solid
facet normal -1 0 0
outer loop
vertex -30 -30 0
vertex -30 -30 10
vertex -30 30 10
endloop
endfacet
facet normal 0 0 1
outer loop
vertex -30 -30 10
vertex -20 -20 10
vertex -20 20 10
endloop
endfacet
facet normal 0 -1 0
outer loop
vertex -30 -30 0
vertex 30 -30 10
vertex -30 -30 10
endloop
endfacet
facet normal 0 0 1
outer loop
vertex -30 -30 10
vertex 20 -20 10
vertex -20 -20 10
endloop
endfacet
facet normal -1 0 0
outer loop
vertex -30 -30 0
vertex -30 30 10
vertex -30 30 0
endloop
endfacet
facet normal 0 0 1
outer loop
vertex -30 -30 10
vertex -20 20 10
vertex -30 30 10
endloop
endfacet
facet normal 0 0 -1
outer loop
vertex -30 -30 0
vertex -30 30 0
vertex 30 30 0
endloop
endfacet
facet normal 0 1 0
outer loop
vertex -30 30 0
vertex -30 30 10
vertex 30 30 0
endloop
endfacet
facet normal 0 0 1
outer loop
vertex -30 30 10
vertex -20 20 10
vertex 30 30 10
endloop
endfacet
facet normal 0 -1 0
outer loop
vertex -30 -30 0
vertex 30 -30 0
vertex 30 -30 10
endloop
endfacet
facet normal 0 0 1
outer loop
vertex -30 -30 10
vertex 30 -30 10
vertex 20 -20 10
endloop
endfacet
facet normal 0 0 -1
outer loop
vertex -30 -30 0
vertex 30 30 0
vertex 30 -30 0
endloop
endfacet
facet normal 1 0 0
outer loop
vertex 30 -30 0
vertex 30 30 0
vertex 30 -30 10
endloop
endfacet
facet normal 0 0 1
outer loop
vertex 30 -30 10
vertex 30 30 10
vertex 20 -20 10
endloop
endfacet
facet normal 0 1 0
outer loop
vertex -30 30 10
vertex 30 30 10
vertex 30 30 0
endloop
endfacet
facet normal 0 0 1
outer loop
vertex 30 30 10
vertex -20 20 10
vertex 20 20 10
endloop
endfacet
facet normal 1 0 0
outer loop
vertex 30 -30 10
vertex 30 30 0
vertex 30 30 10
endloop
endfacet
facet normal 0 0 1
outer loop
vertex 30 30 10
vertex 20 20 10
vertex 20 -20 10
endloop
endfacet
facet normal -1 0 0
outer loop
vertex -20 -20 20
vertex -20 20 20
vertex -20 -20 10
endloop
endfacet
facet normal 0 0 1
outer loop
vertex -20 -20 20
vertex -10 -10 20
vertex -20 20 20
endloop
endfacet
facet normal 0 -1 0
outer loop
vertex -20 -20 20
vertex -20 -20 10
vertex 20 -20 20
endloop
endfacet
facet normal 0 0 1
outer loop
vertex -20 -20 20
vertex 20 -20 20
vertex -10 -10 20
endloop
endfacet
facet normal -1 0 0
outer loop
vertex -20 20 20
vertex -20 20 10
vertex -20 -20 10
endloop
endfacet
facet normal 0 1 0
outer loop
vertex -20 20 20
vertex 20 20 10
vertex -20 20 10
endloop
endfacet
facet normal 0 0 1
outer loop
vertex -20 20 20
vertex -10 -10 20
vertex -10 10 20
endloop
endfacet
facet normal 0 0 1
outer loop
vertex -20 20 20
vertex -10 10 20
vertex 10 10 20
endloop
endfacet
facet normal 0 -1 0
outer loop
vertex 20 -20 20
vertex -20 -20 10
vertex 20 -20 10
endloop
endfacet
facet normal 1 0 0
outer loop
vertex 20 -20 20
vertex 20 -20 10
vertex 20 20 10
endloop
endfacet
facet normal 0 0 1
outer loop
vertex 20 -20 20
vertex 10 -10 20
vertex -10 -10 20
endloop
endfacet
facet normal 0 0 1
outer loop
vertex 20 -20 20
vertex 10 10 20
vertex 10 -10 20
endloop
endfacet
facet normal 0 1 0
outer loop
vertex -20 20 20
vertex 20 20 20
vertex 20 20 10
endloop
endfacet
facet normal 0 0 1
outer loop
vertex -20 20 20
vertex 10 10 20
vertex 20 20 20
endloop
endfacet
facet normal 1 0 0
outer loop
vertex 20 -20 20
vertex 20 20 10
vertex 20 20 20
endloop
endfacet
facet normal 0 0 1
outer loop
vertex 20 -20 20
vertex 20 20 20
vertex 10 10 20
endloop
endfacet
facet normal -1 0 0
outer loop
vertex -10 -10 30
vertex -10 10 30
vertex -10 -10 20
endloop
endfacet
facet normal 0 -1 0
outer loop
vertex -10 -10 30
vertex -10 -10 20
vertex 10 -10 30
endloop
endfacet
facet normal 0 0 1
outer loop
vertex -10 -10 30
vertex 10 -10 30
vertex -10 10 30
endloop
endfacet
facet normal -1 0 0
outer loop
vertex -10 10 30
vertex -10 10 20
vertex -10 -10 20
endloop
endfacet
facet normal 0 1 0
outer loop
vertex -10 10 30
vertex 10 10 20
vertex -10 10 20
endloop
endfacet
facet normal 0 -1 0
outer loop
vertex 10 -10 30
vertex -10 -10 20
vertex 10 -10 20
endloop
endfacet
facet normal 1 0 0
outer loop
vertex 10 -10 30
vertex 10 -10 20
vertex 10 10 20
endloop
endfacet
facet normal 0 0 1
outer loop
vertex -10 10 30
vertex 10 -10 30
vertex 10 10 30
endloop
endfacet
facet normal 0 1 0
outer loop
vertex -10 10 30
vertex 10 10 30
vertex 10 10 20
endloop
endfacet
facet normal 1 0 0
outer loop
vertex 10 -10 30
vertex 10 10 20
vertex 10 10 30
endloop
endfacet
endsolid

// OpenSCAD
union() {
    translate([-30, -30, 0])
        cube([60, 60, 10]);

    translate([-20, -20, 10])
        cube([40, 40, 10]);

    translate([-10, -10, 20])
        cube([20, 20, 10]);
}
